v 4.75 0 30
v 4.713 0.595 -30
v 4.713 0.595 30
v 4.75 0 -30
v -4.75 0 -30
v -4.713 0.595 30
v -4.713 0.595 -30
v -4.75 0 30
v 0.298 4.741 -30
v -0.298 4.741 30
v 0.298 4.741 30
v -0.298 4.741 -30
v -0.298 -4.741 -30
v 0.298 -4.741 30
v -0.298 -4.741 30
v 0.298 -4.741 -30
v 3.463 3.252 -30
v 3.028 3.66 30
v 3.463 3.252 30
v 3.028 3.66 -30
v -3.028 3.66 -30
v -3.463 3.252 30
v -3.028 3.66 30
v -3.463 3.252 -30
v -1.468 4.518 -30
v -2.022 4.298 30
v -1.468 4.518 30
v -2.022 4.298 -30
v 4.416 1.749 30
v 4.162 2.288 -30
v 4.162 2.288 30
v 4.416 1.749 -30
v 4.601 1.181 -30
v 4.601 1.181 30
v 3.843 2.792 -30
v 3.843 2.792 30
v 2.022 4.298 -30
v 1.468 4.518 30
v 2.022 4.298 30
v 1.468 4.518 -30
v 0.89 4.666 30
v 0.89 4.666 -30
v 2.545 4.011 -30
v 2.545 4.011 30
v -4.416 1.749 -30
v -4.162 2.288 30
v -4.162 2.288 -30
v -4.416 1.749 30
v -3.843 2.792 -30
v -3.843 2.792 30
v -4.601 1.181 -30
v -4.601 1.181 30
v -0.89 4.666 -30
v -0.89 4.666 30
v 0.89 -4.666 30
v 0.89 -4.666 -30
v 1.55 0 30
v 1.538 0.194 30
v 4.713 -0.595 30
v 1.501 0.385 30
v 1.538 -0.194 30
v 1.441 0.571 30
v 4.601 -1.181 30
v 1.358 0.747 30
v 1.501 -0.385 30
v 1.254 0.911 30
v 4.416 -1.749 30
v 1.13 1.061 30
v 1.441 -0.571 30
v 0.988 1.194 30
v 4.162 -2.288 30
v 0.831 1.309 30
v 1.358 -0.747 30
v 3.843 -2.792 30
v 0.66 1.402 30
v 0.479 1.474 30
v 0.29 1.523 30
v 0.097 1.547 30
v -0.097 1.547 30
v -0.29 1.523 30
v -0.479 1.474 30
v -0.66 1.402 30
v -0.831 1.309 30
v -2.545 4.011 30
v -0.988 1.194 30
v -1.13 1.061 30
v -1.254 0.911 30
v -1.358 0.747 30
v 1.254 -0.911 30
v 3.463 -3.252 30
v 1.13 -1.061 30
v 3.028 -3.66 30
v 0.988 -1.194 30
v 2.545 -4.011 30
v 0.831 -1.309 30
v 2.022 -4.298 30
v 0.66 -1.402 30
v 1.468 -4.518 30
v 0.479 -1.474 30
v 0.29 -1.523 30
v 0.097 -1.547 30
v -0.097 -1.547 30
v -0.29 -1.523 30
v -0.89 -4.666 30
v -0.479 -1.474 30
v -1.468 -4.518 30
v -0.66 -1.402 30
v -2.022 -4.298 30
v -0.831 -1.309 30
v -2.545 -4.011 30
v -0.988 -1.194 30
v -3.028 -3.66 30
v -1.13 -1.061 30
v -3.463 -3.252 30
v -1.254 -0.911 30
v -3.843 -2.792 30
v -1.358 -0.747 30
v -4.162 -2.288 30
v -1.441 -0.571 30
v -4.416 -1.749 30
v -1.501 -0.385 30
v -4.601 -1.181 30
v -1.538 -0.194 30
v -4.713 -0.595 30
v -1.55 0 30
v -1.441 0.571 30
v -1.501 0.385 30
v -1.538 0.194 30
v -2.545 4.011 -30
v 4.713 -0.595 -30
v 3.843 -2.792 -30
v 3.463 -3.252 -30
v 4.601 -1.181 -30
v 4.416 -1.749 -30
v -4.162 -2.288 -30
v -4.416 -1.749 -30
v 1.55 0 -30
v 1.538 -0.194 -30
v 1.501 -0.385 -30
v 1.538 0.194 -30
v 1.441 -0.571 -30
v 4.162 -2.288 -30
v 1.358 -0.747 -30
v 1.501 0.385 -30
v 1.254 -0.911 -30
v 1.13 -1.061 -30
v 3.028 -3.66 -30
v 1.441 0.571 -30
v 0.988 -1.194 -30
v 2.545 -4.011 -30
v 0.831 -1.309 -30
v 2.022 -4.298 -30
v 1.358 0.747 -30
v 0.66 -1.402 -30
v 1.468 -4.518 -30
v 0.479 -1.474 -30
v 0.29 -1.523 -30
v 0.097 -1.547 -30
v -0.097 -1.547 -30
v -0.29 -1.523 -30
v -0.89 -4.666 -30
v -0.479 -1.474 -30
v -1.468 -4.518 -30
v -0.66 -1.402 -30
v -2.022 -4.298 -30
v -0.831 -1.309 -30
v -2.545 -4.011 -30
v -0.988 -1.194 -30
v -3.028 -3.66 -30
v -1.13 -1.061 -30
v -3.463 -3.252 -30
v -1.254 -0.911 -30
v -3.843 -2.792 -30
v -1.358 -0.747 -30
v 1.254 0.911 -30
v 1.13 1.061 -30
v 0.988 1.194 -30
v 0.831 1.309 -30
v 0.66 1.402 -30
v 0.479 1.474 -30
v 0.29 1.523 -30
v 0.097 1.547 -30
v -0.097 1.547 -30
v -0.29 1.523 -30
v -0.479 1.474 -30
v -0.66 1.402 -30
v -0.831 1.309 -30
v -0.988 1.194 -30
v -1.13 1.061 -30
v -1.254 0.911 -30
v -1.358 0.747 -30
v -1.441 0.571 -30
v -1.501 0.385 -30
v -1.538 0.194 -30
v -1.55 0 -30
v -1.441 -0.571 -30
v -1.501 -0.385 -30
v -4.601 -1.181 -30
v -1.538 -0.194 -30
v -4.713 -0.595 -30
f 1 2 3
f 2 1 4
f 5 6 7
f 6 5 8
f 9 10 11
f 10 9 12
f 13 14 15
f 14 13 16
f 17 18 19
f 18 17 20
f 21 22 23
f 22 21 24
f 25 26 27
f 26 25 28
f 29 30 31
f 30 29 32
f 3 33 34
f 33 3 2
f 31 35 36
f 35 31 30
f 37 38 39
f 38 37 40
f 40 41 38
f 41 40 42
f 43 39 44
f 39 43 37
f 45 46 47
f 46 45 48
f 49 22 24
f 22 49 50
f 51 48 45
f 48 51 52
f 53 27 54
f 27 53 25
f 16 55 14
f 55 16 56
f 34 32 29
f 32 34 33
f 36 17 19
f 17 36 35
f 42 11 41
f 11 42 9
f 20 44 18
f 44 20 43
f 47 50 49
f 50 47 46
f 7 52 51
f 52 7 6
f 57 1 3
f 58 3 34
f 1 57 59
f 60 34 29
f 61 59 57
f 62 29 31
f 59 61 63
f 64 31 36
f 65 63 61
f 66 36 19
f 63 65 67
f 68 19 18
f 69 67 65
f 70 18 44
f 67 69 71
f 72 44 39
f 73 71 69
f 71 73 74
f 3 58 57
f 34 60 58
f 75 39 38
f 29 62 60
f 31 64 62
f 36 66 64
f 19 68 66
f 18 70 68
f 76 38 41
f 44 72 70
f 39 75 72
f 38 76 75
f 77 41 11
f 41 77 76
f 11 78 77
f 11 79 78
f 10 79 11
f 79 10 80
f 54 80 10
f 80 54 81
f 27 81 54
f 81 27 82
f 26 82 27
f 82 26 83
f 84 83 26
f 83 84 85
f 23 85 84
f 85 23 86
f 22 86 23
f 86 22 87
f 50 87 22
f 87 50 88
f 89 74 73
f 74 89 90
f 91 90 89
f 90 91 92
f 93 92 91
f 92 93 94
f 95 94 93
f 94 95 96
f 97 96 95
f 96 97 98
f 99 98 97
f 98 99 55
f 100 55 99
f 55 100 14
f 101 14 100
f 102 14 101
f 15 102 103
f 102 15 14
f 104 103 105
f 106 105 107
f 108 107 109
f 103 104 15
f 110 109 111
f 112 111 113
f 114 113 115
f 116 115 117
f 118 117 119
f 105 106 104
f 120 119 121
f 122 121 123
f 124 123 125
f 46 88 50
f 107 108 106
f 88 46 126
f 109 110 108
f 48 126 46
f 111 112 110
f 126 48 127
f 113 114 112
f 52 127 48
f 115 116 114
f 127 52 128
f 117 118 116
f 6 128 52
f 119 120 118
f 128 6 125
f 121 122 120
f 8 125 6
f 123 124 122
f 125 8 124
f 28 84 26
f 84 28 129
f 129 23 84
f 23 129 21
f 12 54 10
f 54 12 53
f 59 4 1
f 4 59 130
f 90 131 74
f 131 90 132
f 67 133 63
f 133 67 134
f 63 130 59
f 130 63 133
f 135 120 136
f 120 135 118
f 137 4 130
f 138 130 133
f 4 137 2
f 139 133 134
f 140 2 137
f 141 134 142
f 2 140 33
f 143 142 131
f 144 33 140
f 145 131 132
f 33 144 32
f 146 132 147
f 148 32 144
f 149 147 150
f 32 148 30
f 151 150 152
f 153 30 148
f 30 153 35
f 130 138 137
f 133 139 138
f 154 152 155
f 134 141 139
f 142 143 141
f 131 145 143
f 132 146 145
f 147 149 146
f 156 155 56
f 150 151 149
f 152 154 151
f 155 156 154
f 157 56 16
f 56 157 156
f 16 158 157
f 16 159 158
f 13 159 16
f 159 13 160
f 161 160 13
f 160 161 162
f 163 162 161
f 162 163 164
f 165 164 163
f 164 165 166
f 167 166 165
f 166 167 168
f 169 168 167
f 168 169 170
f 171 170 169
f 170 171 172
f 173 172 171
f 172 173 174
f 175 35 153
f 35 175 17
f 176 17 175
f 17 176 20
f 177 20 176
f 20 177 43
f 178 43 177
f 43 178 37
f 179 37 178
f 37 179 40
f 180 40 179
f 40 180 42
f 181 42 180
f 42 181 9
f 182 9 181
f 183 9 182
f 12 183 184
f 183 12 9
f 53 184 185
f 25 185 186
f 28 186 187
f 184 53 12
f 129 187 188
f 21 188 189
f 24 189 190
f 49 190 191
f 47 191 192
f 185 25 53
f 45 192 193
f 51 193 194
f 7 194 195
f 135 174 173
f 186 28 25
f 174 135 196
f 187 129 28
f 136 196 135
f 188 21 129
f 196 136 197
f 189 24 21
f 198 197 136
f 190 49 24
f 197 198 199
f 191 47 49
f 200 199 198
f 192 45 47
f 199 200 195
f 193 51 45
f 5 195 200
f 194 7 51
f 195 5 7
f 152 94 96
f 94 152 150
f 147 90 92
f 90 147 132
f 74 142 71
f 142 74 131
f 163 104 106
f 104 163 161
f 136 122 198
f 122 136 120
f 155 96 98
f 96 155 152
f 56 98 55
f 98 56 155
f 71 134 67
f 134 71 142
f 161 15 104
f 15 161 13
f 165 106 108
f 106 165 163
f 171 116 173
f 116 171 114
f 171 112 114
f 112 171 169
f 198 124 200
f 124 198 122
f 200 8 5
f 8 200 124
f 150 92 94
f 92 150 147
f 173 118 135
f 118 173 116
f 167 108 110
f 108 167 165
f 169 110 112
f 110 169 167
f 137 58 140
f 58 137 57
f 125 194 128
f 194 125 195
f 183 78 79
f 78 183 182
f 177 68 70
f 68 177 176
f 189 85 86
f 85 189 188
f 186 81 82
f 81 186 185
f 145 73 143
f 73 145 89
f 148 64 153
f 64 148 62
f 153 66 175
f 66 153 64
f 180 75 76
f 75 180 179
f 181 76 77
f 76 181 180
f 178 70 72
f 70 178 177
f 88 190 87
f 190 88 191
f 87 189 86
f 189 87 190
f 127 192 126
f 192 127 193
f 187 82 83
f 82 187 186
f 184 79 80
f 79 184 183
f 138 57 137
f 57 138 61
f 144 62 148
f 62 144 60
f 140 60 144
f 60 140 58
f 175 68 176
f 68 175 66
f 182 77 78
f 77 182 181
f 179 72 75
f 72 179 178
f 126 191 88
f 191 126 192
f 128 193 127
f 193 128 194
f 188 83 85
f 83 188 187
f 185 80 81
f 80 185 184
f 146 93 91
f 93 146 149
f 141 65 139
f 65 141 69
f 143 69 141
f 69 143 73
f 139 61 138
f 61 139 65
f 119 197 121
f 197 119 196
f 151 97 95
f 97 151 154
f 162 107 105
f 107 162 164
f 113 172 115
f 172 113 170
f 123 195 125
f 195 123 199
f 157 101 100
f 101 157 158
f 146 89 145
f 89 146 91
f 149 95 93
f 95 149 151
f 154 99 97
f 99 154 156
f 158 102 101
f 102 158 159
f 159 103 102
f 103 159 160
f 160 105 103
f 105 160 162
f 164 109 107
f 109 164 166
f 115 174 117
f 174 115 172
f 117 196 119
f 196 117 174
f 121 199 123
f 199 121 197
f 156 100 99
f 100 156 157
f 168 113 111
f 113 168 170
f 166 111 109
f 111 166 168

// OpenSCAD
$fn = 50;


difference() {
	union() {
		translate(v = [0, 0, -30.0000000000]) {
			cylinder(h = 60, r = 4.7500000000);
		}
	}
	union() {
		translate(v = [0, 0, -100.0000000000]) {
			cylinder(h = 200, r = 1.5500000000);
		}
	}
}
